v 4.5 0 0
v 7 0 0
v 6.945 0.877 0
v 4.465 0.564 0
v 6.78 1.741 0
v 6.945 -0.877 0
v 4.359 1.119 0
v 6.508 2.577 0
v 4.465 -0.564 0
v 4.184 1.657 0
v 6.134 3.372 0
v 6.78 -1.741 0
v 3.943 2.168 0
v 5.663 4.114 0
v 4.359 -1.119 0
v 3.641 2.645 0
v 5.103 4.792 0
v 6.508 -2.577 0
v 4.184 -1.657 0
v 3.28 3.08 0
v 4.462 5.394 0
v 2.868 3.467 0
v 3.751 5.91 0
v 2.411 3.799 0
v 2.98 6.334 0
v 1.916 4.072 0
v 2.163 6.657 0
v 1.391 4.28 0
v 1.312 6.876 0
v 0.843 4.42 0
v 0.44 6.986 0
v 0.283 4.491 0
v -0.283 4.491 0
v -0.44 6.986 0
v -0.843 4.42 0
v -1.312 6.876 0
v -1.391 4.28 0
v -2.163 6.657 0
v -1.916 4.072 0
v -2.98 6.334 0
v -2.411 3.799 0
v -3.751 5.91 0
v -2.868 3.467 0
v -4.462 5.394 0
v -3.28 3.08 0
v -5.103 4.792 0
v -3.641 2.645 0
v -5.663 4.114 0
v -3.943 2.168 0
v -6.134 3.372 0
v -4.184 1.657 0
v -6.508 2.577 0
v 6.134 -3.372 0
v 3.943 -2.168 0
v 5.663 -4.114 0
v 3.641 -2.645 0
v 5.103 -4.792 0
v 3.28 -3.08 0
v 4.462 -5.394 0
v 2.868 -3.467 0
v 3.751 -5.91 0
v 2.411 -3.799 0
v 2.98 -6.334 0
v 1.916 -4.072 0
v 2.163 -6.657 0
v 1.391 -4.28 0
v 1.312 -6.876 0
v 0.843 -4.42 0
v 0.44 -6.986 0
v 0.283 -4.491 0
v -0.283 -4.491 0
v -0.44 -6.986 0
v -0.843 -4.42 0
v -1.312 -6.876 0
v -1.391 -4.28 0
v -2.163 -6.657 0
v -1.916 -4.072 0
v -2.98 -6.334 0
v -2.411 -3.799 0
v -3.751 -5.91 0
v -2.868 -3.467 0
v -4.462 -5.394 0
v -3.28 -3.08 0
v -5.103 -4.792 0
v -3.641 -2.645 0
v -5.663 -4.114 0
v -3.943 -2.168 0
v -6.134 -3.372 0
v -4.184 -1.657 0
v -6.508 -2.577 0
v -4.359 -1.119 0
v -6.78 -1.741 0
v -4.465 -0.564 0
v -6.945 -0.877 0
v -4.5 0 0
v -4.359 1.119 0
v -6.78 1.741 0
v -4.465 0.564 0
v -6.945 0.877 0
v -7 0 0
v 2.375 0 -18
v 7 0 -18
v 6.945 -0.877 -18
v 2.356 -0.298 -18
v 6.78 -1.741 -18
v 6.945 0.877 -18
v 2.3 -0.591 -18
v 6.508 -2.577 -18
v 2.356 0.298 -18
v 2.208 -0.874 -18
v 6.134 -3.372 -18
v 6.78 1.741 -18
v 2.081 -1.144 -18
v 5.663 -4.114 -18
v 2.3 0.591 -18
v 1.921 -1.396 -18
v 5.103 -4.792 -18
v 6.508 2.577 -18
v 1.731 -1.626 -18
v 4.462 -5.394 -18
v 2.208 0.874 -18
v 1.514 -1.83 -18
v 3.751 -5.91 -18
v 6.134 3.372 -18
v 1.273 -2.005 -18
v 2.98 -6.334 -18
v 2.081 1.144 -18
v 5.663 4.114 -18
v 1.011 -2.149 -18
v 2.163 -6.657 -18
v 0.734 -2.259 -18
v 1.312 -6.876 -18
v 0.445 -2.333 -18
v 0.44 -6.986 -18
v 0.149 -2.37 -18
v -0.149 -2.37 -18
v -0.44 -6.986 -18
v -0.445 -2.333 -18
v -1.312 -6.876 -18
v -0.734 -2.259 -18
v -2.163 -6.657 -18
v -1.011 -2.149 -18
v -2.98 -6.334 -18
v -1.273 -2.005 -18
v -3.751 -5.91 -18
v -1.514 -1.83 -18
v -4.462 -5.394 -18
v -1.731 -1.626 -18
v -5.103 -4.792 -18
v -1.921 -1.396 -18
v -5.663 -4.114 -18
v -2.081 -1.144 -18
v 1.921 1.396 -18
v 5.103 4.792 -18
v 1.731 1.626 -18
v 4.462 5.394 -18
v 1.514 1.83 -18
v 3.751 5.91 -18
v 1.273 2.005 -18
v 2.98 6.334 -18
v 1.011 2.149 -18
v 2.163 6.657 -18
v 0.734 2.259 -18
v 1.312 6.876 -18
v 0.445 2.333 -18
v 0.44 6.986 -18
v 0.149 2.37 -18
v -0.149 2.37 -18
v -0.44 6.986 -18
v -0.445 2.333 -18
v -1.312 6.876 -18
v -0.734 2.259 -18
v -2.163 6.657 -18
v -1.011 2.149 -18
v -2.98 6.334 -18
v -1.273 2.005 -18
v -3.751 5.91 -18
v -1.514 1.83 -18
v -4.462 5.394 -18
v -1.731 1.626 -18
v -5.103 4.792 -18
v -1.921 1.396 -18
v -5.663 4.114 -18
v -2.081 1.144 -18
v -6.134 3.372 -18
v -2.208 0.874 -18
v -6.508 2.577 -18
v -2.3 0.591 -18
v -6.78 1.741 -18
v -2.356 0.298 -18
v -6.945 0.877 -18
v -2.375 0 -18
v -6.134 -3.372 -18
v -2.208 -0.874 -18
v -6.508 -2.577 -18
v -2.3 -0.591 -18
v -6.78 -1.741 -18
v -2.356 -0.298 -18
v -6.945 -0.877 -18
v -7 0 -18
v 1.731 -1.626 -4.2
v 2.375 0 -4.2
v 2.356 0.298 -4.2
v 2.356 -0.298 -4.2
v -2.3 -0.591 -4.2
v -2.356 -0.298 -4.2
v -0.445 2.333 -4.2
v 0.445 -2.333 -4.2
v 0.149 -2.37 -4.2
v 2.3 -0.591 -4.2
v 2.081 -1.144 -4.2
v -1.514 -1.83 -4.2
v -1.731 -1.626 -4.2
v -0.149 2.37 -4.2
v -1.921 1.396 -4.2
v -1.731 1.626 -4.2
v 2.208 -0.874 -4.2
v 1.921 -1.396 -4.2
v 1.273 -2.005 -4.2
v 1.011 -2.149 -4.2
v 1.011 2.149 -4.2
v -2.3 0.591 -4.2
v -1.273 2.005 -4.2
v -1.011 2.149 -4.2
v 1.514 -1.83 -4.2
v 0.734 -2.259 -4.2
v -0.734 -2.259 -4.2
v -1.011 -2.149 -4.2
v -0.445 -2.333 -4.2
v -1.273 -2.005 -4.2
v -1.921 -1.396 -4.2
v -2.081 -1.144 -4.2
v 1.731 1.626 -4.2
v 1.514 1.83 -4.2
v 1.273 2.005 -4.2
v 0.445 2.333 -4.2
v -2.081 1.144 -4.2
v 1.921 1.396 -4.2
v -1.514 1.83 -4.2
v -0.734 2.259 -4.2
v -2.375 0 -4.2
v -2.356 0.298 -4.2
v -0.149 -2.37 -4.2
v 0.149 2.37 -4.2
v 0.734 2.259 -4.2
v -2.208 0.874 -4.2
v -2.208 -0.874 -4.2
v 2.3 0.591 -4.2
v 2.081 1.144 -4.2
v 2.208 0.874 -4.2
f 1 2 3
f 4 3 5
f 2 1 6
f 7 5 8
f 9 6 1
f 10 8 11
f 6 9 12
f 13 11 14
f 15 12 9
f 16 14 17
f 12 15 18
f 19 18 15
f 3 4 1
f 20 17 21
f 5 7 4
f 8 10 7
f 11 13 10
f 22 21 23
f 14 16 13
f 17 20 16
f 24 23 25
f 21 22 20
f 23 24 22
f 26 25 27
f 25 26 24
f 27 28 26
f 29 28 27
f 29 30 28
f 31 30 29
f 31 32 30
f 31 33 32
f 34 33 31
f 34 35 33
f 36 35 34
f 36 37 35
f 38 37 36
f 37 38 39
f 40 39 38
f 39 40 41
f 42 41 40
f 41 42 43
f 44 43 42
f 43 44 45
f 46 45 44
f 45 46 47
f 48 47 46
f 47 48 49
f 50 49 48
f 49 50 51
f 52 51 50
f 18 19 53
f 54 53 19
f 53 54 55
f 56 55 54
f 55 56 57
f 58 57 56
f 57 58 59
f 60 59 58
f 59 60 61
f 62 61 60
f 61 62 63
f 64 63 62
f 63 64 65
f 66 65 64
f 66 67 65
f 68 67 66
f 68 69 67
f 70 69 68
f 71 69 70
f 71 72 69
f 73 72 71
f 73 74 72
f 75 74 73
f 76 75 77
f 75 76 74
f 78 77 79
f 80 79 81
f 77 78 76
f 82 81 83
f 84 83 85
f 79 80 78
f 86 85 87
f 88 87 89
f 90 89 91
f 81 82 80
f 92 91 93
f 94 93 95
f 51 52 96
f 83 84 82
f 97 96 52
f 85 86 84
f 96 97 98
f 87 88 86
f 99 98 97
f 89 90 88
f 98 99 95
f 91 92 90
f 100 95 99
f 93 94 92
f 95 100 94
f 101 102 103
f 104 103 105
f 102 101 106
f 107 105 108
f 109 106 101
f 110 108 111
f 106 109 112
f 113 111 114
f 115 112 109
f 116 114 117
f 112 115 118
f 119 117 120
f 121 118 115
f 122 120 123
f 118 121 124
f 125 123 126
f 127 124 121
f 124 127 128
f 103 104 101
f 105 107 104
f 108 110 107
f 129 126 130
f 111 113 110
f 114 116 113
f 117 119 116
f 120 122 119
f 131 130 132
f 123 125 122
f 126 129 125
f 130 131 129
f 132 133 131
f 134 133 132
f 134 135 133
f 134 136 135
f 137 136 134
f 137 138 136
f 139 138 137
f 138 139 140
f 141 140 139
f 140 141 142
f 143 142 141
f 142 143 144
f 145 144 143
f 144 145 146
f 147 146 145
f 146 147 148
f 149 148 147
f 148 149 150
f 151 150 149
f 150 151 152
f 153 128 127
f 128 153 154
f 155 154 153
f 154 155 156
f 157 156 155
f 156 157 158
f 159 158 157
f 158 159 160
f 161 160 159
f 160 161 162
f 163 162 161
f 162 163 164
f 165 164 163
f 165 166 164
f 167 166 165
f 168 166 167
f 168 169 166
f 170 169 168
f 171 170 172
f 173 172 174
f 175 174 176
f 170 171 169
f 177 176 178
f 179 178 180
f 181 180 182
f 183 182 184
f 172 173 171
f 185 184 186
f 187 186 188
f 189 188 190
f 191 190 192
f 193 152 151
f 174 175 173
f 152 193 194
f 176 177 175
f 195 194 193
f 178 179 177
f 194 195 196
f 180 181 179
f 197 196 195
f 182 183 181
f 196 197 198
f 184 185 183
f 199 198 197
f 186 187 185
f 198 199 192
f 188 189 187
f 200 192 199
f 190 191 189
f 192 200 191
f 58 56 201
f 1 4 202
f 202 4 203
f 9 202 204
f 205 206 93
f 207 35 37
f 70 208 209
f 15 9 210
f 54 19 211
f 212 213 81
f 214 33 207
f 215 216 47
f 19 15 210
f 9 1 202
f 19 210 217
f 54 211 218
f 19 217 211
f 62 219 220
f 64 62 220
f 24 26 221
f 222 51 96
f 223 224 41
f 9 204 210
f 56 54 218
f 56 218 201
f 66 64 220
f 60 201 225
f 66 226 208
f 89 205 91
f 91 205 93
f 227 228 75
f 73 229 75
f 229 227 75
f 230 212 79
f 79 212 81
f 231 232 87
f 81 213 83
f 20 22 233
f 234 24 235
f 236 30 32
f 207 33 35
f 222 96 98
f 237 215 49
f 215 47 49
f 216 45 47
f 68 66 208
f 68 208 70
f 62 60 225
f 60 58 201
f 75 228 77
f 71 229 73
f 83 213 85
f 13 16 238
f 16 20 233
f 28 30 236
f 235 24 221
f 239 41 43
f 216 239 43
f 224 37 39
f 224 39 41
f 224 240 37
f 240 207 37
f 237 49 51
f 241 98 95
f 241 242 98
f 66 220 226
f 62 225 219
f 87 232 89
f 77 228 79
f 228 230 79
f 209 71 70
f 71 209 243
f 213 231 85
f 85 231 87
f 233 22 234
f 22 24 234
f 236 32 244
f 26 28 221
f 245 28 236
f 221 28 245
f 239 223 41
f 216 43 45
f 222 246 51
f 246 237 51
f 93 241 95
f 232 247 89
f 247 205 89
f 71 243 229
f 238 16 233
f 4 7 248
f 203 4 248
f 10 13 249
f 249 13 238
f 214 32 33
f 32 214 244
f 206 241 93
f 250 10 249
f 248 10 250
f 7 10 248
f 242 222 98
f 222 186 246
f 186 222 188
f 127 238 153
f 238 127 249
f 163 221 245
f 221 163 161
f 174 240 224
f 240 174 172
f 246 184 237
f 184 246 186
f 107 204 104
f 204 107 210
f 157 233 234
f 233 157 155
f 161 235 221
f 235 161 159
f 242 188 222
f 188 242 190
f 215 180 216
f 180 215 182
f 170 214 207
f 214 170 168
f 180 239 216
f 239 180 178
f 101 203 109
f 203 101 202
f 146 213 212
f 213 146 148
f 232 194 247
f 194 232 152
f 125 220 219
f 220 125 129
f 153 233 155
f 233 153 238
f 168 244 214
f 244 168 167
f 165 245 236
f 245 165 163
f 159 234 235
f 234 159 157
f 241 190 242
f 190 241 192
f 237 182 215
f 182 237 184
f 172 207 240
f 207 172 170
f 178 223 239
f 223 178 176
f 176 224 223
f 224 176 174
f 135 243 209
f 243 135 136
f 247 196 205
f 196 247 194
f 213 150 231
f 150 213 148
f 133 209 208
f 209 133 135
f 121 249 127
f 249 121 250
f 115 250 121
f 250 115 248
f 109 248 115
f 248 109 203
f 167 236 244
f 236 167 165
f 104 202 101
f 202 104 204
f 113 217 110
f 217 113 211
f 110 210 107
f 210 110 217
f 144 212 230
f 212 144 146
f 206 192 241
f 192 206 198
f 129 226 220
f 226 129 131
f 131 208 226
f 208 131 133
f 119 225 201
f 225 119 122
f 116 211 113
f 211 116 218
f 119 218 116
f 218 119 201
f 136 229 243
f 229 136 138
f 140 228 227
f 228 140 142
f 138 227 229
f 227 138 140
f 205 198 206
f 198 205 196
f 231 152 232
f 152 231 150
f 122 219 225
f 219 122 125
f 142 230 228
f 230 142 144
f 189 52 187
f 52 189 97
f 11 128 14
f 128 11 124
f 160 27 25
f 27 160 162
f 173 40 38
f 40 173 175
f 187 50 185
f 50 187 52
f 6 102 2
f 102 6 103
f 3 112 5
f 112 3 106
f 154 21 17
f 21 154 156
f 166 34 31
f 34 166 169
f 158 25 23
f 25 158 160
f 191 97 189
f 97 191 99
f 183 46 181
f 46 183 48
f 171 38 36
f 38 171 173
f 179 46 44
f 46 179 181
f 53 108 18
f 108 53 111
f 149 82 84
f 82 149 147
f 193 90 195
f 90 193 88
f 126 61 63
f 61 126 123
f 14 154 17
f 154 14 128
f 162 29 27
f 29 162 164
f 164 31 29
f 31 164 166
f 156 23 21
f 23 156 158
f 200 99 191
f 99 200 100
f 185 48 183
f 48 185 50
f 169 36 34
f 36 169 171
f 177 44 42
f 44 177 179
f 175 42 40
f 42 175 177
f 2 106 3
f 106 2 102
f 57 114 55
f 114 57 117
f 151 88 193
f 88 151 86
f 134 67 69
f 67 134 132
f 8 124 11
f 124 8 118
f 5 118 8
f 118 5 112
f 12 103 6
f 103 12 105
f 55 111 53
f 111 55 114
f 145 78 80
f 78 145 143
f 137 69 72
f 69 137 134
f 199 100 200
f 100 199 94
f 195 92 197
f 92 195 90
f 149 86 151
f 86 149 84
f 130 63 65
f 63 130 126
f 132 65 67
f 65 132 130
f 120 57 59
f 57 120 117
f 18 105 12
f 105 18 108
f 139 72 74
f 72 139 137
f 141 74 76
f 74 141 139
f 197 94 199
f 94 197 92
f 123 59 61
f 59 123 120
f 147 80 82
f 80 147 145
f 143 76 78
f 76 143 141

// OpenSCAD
$fn = 50;


difference() {
	union() {
		translate(v = [0, 0, -18.0000000000]) {
			cylinder(h = 18, r = 7.0000000000);
		}
		cylinder(h = 0, r = 13.0000000000);
	}
	union() {
		translate(v = [0, 0, 0]) {
			rotate(a = [0, 0, 0]) {
				difference() {
					union() {
						#translate(v = [0, 0, -18.0000000000]) {
							cylinder(h = 18, r = 2.2500000000);
						}
						#translate(v = [0, 0, -4.2000000000]) {
							cylinder(h = 4.2000000000, r1 = 2.3750000000, r2 = 4.5000000000);
						}
						#translate(v = [0, 0, -18.0000000000]) {
							cylinder(h = 18, r = 2.3750000000);
						}
						#translate(v = [0, 0, -18.0000000000]) {
							cylinder(h = 18, r = 2.2500000000);
						}
					}
					union();
				}
			}
		}
	}
}
